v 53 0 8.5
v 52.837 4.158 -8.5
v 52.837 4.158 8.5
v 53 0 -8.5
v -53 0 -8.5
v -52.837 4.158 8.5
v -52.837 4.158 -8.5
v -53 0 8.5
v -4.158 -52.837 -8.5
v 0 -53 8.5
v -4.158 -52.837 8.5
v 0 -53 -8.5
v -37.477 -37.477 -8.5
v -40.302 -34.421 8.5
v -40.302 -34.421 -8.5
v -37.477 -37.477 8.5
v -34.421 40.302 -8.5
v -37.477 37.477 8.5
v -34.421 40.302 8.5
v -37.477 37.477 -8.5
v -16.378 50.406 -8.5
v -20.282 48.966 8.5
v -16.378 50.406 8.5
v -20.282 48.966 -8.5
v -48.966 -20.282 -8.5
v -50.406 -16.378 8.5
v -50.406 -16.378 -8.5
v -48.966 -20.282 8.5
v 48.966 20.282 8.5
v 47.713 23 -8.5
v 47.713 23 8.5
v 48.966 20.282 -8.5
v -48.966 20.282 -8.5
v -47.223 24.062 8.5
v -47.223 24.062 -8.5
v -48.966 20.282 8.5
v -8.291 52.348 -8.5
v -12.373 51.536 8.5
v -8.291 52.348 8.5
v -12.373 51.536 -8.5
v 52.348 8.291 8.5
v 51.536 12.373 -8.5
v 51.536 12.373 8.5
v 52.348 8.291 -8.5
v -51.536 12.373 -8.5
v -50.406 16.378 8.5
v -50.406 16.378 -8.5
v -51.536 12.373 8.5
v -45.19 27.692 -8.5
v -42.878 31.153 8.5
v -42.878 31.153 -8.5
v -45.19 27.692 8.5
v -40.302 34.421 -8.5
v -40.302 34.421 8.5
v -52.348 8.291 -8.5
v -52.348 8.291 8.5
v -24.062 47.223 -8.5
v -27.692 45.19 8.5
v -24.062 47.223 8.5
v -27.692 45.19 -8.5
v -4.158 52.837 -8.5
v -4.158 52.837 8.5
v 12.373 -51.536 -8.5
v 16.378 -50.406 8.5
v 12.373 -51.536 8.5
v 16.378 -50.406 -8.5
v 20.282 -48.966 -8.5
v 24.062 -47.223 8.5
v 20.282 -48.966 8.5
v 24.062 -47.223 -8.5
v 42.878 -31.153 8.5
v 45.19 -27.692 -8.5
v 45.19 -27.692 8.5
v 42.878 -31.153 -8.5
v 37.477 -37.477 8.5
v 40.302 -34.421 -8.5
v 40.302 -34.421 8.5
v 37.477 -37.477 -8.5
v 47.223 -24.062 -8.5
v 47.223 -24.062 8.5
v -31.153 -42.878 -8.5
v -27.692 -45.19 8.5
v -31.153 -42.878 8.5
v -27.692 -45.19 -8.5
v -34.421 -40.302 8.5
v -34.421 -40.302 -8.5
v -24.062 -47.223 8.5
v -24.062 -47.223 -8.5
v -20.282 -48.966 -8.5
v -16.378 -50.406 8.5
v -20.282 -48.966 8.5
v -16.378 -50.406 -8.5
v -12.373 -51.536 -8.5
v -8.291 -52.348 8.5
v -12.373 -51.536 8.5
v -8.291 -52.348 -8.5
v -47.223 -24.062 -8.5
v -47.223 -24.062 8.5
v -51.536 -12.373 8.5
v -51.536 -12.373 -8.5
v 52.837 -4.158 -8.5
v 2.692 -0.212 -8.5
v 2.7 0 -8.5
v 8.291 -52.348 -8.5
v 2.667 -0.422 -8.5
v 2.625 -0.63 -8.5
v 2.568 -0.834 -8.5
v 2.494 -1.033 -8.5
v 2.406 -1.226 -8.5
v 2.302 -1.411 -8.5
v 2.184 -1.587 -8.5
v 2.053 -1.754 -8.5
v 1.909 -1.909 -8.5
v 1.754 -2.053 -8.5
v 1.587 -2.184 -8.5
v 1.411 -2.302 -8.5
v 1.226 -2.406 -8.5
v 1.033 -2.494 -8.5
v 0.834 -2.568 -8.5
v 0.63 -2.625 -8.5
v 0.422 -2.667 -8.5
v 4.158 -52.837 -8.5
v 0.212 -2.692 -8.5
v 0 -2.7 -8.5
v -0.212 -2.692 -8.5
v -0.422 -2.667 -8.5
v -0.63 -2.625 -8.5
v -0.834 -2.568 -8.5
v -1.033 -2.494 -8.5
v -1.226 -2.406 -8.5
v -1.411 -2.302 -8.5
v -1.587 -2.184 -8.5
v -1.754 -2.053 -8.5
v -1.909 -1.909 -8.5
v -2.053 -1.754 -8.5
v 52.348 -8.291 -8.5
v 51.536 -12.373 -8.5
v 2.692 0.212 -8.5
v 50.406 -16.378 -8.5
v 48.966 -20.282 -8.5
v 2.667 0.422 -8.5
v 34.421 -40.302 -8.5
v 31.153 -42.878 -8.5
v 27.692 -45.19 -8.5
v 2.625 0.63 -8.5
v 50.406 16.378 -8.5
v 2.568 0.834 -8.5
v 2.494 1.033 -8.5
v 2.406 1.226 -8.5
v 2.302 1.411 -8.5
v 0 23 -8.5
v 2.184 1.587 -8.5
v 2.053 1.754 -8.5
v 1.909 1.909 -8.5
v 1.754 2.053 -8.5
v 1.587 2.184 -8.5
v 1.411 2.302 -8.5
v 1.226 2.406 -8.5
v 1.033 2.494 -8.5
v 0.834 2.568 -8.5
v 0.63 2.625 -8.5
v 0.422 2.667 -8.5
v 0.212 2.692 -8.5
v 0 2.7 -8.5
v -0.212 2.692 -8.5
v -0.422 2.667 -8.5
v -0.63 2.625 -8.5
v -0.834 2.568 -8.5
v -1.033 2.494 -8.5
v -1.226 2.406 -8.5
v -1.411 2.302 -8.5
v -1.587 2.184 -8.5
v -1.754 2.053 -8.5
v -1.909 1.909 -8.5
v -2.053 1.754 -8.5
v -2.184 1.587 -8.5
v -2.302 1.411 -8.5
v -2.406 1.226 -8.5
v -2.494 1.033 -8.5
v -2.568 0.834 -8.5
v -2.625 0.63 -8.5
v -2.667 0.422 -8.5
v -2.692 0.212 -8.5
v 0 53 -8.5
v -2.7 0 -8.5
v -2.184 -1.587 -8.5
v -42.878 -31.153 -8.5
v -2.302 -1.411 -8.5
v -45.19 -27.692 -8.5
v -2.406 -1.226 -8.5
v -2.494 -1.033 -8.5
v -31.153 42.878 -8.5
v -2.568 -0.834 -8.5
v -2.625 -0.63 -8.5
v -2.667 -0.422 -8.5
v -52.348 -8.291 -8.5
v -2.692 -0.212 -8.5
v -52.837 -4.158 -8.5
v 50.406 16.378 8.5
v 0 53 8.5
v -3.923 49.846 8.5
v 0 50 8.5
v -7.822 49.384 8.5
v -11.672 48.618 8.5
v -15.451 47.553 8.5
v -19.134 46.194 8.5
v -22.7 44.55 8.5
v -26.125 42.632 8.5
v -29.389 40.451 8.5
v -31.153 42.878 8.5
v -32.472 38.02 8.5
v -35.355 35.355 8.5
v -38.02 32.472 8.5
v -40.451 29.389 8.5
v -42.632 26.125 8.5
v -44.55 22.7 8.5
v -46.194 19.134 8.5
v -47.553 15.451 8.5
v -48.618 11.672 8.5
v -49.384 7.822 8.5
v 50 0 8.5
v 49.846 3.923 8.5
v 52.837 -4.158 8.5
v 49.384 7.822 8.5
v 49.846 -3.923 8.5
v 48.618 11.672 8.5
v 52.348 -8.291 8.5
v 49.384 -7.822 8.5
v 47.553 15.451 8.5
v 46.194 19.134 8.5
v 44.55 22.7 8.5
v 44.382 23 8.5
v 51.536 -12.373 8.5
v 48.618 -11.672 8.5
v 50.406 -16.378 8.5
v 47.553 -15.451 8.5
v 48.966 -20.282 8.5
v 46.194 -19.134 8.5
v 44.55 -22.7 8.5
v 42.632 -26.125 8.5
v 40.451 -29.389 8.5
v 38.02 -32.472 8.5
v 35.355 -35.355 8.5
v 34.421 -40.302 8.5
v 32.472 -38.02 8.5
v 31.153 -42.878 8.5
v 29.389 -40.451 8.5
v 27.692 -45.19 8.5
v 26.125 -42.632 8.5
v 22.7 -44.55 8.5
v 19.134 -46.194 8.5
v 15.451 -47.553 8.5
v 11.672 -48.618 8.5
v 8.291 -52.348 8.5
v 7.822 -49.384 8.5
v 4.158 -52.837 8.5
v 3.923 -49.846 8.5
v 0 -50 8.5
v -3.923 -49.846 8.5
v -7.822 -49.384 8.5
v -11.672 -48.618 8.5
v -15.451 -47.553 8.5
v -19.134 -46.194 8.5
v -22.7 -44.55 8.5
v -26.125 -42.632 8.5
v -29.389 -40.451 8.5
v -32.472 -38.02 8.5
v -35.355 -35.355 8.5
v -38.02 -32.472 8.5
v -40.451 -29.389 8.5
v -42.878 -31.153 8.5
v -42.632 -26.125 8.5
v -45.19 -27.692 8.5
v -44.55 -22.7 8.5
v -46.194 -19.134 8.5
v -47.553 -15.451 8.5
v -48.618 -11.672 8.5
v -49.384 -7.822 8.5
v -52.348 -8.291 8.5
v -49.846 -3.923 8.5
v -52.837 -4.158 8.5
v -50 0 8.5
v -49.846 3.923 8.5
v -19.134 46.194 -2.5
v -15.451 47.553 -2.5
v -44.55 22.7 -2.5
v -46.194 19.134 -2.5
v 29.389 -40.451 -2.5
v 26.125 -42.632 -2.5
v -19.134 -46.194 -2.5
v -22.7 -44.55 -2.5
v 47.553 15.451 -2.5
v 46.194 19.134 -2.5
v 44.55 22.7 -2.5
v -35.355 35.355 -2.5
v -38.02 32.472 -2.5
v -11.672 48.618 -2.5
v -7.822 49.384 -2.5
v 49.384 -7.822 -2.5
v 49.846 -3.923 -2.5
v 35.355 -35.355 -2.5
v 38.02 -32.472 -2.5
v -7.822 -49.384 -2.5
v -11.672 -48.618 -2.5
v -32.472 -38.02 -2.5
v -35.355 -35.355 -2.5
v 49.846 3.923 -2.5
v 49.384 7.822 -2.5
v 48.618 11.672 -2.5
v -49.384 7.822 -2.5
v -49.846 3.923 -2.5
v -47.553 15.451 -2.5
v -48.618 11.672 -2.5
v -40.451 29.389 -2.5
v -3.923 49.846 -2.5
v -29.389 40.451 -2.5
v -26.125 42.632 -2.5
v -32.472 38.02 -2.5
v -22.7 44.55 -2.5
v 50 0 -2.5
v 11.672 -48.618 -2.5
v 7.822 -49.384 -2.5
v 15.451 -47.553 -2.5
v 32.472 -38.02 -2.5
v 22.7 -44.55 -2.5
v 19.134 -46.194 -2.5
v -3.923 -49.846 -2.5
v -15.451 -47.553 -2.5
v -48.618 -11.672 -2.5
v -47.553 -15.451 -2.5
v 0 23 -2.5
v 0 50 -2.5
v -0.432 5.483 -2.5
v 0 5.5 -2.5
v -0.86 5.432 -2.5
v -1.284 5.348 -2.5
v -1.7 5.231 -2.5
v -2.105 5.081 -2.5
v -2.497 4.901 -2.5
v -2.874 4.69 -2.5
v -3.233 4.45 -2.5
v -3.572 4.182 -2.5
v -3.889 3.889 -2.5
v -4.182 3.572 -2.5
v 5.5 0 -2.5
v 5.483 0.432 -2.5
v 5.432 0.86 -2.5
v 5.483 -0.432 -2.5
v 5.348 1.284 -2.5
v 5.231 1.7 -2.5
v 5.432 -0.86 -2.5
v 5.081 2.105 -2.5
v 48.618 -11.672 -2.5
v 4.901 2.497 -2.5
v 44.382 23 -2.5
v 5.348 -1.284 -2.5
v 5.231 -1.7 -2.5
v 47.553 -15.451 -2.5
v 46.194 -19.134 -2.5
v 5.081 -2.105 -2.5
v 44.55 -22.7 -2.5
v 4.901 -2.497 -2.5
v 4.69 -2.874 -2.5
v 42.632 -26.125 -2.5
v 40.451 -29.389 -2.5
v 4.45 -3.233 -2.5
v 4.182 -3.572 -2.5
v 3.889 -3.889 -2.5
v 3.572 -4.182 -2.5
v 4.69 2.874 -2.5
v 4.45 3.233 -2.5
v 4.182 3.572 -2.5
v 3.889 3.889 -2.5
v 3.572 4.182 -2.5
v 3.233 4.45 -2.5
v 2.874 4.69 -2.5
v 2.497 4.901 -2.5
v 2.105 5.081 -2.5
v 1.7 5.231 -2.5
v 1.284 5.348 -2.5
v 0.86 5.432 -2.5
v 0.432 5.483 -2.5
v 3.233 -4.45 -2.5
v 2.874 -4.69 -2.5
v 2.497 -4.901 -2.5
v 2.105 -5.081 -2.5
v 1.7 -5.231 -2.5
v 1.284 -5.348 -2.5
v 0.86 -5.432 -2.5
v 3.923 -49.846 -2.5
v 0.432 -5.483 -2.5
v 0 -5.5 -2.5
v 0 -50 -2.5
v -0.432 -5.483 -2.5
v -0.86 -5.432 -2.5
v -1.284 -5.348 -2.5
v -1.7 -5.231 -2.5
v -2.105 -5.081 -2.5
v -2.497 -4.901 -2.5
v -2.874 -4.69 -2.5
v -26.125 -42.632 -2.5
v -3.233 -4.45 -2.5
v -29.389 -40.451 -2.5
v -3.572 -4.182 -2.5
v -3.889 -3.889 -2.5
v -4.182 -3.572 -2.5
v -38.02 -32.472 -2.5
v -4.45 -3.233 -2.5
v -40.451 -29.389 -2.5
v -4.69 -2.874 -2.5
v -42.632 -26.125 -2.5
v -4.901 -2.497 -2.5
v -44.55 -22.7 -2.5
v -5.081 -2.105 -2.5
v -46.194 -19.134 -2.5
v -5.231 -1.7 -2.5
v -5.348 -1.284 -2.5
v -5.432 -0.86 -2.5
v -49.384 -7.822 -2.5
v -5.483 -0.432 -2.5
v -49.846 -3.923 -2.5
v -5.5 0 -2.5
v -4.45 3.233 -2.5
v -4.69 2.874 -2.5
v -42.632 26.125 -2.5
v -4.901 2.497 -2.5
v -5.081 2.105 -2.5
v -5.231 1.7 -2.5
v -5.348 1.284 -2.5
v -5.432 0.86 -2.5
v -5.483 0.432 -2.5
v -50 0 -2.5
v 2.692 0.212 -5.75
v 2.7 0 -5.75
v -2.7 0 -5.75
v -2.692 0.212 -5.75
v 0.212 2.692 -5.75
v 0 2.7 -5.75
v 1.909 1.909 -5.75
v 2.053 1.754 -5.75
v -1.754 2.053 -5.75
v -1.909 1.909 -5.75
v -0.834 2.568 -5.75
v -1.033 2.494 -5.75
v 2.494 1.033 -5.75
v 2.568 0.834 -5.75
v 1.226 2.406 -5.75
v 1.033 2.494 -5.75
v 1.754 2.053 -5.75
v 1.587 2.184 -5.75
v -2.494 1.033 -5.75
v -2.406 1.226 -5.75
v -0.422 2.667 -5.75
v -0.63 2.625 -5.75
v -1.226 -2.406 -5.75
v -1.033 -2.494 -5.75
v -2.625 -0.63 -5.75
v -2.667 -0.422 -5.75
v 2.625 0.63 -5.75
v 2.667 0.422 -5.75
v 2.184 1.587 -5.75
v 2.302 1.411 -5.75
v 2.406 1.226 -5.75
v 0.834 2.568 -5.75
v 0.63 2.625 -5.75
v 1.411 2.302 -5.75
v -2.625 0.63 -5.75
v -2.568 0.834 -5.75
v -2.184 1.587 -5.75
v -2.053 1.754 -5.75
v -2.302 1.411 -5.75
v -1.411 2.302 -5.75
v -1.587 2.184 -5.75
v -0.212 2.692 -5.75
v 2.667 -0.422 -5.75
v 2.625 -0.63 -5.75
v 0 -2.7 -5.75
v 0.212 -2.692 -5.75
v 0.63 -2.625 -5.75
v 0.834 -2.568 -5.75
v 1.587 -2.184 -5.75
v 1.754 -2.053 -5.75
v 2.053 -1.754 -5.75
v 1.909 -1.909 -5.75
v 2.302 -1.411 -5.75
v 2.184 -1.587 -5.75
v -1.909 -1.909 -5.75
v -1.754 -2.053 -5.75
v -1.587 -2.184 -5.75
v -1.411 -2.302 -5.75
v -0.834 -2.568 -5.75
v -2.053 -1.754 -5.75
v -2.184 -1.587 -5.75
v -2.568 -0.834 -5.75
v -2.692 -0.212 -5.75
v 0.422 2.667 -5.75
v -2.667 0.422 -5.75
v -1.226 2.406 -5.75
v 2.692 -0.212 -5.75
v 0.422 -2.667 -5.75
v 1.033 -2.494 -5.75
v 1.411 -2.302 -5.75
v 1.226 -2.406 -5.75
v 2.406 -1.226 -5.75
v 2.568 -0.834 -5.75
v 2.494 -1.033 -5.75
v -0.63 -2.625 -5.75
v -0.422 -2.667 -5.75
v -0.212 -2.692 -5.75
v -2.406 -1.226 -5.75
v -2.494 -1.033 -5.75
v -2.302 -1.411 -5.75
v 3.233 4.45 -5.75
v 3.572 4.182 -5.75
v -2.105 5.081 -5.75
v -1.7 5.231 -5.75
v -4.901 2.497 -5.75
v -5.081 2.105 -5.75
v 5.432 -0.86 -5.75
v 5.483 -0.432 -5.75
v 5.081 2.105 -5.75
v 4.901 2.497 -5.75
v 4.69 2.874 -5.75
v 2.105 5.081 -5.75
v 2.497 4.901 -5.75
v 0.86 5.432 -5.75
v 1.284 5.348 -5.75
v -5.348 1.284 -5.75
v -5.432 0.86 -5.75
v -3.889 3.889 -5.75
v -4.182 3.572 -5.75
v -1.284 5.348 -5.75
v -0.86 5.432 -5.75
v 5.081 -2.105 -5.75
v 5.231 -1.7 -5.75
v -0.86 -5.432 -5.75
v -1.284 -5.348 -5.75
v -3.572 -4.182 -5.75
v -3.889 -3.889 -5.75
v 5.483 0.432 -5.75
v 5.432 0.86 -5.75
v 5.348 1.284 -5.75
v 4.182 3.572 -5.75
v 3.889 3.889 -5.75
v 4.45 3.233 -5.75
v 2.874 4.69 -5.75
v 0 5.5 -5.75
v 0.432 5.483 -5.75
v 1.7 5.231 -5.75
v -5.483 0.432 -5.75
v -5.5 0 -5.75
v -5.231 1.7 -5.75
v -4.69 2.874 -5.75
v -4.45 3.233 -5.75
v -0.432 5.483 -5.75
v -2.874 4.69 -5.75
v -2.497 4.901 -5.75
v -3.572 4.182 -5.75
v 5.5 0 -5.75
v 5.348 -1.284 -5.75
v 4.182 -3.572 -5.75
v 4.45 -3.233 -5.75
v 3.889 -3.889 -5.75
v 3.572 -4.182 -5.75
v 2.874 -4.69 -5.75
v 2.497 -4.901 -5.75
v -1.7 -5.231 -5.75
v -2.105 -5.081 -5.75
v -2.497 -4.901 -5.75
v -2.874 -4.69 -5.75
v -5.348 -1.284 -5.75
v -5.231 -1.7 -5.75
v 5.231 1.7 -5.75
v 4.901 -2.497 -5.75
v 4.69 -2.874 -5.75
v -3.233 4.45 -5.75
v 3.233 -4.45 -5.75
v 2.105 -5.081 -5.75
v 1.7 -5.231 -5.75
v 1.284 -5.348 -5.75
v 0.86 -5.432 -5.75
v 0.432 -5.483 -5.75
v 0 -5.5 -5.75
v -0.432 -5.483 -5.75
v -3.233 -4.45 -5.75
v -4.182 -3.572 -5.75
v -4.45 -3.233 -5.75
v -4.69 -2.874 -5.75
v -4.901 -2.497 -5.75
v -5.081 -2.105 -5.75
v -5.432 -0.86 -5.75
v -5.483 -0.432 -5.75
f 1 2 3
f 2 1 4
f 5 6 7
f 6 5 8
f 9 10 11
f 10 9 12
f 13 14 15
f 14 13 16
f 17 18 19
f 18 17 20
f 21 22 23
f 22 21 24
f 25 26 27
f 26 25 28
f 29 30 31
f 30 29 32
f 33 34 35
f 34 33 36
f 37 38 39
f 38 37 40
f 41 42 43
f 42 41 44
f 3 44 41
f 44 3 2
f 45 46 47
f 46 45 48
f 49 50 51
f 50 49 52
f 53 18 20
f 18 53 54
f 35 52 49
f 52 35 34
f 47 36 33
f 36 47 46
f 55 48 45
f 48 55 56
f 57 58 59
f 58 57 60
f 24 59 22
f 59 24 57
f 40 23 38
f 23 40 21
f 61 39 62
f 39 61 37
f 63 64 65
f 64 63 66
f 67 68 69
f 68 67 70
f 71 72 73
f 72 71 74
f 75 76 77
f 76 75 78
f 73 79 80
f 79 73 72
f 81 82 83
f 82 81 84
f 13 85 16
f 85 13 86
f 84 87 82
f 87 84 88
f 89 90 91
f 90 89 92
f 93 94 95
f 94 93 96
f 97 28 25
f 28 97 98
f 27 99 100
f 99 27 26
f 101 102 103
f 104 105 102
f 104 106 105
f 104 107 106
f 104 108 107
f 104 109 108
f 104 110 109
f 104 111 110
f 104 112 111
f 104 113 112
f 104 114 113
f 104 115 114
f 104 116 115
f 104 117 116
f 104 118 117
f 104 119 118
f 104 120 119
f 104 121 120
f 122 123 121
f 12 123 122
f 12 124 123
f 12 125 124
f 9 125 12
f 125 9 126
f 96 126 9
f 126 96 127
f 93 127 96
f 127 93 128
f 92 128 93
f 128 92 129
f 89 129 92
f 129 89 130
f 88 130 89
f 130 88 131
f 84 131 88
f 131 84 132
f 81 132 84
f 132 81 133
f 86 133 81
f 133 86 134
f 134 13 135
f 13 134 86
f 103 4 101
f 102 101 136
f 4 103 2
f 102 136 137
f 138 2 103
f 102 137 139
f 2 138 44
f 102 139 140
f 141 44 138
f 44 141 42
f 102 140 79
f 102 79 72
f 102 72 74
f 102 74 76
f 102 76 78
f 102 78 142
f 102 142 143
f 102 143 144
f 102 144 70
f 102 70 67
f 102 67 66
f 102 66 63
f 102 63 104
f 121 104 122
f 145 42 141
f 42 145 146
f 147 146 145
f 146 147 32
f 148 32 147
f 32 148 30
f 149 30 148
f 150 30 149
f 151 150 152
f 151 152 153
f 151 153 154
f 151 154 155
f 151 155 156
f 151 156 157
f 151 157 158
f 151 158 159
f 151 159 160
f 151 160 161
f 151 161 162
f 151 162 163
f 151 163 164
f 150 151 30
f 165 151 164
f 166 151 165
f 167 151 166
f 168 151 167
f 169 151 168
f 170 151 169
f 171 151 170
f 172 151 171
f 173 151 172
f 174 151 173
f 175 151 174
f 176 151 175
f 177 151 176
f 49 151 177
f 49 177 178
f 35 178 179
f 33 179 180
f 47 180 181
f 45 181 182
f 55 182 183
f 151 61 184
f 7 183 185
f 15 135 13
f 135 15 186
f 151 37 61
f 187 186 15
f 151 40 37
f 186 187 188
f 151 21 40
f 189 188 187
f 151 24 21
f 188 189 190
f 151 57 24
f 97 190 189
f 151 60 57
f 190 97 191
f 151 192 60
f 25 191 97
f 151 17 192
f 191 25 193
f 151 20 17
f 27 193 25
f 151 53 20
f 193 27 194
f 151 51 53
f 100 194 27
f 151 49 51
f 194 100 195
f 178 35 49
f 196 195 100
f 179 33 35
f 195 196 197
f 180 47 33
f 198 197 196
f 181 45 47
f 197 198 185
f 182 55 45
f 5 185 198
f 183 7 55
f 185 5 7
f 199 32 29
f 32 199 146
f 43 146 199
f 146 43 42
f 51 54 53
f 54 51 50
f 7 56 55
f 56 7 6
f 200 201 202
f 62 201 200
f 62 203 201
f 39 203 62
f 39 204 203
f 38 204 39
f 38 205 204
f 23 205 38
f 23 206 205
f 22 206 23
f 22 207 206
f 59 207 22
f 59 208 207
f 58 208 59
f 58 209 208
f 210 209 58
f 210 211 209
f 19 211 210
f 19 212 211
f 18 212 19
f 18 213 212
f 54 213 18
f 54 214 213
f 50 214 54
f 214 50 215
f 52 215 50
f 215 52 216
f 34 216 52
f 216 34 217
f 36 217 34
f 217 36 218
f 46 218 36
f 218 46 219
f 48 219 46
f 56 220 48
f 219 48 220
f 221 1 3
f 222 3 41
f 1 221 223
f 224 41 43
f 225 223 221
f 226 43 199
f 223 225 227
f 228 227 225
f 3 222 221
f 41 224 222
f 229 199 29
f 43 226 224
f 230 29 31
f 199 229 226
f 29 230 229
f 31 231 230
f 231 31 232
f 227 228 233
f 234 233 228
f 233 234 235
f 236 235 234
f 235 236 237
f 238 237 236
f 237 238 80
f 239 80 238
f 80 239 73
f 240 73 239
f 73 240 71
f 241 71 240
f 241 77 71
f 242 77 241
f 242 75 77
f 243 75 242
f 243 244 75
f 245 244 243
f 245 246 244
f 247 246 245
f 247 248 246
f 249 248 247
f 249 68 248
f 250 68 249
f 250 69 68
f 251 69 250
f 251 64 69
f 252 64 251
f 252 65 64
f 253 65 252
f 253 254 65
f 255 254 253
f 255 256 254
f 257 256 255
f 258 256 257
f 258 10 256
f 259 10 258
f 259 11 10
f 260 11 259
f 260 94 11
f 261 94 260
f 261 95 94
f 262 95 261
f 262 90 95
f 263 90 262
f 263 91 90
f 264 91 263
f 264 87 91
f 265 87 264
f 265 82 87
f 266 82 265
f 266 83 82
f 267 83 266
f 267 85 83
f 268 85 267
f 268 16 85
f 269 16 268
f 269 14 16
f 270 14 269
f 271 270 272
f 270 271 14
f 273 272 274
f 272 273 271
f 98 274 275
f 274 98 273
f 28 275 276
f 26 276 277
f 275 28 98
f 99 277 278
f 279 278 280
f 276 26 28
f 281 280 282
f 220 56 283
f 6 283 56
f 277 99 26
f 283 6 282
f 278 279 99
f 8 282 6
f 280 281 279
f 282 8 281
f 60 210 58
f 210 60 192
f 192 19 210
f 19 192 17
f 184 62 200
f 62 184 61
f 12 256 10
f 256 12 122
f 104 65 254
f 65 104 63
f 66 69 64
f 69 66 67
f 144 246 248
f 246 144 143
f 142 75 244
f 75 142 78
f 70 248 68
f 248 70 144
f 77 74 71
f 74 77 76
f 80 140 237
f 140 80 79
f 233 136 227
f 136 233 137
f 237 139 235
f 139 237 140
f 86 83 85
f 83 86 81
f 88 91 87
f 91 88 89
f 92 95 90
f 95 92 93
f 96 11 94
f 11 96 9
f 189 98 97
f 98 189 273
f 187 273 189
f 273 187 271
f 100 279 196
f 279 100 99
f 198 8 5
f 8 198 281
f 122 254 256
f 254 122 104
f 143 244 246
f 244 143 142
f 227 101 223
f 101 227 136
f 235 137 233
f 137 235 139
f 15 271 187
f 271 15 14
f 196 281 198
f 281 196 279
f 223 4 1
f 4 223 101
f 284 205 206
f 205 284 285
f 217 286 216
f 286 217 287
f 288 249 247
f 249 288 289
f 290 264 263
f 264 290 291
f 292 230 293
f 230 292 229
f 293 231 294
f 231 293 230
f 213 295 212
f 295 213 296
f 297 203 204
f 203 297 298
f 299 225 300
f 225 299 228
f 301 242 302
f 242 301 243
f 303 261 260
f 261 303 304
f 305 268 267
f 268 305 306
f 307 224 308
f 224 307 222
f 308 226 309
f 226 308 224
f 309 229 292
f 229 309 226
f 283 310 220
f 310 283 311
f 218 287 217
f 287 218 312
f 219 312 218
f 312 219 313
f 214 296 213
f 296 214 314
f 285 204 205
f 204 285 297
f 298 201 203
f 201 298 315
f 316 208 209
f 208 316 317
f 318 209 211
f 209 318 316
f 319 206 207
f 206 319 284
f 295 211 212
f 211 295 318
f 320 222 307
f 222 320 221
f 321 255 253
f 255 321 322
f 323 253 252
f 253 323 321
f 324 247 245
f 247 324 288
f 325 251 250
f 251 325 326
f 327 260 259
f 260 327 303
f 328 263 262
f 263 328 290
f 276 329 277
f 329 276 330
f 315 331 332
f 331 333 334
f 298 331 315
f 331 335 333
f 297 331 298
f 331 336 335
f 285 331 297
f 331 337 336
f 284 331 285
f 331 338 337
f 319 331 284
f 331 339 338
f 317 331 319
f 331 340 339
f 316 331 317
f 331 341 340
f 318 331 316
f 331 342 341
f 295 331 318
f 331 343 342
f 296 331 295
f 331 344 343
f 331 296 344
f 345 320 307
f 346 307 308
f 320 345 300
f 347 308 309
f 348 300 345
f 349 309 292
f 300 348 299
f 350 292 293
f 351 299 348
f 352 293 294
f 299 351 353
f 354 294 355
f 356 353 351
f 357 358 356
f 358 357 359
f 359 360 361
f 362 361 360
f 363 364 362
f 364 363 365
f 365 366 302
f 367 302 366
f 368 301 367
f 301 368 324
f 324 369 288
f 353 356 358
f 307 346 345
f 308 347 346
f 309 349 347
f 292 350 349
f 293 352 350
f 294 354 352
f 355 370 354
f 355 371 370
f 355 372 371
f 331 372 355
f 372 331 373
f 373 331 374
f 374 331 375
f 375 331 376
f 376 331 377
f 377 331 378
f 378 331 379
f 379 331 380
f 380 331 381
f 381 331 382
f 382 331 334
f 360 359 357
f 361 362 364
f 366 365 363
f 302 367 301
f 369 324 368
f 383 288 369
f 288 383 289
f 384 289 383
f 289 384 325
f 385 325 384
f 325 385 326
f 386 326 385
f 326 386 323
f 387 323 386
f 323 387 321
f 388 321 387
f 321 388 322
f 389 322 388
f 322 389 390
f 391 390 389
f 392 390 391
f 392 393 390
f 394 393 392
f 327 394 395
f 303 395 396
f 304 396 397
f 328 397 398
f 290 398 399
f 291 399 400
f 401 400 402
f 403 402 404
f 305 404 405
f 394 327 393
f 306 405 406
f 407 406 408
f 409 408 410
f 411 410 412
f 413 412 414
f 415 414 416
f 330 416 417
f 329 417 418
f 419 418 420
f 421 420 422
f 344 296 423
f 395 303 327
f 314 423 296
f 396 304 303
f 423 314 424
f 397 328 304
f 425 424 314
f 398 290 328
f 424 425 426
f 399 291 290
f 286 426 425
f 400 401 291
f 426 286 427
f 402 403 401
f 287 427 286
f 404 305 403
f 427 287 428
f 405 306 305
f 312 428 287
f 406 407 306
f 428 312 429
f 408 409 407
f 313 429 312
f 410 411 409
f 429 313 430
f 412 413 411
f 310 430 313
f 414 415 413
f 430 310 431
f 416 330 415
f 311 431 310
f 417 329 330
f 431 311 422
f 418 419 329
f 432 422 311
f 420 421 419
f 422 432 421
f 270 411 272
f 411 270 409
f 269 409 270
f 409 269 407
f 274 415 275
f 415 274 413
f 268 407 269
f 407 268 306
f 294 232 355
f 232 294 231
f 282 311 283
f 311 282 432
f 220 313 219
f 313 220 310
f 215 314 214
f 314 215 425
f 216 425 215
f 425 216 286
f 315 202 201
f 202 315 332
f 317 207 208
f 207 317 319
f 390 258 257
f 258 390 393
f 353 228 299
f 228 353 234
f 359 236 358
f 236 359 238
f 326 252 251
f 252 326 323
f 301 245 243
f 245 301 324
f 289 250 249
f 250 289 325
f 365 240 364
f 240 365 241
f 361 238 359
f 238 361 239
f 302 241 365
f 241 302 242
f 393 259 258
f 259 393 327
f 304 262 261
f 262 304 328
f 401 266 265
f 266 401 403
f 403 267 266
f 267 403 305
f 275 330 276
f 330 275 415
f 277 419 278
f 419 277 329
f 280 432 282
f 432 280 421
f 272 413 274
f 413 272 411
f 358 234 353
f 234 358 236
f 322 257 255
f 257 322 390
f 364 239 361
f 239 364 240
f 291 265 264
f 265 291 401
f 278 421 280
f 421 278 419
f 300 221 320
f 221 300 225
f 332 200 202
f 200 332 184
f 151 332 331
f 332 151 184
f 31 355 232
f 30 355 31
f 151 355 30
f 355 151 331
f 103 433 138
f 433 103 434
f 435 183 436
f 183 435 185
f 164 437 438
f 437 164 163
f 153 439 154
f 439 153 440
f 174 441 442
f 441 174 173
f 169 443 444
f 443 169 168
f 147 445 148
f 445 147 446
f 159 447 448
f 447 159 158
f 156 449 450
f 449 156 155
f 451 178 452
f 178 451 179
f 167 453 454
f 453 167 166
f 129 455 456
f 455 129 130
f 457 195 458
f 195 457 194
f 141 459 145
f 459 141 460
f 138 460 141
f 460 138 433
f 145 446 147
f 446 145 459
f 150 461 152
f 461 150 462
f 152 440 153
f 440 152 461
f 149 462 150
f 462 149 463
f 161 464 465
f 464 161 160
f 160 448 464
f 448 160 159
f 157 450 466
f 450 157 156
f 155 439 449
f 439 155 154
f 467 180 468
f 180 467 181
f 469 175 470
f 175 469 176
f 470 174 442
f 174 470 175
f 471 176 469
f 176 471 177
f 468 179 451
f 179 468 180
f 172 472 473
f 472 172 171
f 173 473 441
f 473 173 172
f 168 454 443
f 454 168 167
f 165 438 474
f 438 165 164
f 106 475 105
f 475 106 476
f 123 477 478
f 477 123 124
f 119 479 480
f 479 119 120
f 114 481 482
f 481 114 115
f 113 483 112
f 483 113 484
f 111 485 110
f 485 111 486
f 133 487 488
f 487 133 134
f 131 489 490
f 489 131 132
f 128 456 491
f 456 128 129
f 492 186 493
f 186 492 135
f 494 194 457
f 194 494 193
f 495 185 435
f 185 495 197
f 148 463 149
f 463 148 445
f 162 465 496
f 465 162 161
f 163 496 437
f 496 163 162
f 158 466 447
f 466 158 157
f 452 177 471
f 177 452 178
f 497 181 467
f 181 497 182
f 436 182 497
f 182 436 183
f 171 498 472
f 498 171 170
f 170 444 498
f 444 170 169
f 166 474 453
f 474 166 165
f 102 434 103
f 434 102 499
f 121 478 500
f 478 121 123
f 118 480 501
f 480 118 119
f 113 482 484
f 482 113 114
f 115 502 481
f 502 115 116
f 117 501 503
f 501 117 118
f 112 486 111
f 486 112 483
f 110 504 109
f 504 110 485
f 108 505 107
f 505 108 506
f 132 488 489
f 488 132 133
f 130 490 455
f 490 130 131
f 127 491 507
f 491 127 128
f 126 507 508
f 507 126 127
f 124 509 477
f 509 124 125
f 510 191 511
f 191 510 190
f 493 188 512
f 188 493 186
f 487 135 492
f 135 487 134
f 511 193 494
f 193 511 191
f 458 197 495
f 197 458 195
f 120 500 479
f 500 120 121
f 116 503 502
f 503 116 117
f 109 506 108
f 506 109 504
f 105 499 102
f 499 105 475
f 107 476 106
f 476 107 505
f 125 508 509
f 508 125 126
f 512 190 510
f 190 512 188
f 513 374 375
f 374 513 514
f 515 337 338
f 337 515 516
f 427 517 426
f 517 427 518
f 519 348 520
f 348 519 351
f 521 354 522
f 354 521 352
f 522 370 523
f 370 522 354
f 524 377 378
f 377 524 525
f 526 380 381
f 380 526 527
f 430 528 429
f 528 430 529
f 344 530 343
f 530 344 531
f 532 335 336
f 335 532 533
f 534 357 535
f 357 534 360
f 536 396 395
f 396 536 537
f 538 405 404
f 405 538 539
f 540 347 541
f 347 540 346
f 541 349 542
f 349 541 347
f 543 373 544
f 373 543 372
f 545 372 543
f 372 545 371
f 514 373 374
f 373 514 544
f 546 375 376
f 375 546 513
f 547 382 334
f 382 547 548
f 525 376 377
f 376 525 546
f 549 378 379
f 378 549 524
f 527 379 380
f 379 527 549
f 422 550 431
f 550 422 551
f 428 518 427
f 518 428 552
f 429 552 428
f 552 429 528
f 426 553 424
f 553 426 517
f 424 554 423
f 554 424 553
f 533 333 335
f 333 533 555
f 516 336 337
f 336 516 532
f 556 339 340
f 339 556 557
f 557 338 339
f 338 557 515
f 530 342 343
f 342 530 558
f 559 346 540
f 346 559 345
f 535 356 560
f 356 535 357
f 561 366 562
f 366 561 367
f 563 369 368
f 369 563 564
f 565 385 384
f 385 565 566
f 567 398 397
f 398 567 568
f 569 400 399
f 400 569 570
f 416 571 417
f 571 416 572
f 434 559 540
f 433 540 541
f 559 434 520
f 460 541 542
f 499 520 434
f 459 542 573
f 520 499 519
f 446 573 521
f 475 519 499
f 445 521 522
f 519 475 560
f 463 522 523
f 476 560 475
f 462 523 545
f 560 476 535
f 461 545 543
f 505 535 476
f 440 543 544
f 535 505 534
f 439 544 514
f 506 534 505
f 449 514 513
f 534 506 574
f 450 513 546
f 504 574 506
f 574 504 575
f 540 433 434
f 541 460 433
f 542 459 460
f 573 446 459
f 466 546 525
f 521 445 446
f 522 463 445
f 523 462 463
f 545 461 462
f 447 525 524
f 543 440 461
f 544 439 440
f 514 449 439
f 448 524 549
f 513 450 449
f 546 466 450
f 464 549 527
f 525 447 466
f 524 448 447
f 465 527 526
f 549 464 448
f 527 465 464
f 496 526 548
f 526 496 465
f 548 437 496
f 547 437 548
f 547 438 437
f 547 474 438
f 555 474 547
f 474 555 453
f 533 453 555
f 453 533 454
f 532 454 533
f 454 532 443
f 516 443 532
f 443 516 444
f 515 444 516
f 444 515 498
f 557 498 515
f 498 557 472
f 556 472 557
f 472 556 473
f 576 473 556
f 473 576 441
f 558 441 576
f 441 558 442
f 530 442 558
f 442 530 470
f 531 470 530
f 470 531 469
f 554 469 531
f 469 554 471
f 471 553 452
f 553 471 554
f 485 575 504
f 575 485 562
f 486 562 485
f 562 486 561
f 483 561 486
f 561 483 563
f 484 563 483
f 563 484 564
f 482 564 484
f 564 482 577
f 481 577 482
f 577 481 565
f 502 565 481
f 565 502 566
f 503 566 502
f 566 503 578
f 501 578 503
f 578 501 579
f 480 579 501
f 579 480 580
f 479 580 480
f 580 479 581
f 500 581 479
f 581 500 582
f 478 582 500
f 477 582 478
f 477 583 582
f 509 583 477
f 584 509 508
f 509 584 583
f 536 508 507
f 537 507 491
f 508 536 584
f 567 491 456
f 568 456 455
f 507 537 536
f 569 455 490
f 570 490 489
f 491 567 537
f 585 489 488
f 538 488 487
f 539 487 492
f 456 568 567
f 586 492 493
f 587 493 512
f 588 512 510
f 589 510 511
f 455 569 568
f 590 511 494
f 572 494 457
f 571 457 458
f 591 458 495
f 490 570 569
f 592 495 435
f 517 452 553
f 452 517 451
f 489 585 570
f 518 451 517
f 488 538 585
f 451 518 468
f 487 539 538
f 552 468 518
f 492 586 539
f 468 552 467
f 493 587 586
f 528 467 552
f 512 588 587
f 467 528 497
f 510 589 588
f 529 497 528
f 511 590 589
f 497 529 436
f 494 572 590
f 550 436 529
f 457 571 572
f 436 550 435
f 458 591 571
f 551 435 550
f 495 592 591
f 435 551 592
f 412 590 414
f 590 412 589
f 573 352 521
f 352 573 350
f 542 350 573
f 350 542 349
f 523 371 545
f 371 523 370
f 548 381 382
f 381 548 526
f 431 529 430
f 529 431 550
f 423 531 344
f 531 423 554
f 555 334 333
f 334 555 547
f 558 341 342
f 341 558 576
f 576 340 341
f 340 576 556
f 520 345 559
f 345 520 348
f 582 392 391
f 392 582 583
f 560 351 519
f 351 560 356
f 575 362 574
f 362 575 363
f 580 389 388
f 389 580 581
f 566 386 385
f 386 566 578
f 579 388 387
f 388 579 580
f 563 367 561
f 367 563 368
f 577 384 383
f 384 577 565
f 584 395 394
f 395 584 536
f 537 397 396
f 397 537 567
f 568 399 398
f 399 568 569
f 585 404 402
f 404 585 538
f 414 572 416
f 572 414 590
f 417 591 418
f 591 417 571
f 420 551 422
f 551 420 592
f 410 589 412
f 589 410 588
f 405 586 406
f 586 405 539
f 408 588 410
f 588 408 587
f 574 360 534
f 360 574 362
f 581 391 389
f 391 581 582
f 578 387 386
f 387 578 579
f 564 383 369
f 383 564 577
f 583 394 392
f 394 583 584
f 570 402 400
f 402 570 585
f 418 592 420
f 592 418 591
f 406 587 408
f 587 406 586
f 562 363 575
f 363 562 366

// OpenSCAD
difference() {

cylinder(r=53, h=17,center=true,$fn=80);
     
    translate([0,0,6]) cylinder(r=50, h=17,center=true,$fn=80);
    translate([37.5,38,0]) cube([75,30,20],center=true);
    cylinder(r=2.7, h=20, center=true, $fn=80);
    translate([0,0,-4]) cylinder(r=5.5, h=3.5, center=true, $fn=80);
    
}
